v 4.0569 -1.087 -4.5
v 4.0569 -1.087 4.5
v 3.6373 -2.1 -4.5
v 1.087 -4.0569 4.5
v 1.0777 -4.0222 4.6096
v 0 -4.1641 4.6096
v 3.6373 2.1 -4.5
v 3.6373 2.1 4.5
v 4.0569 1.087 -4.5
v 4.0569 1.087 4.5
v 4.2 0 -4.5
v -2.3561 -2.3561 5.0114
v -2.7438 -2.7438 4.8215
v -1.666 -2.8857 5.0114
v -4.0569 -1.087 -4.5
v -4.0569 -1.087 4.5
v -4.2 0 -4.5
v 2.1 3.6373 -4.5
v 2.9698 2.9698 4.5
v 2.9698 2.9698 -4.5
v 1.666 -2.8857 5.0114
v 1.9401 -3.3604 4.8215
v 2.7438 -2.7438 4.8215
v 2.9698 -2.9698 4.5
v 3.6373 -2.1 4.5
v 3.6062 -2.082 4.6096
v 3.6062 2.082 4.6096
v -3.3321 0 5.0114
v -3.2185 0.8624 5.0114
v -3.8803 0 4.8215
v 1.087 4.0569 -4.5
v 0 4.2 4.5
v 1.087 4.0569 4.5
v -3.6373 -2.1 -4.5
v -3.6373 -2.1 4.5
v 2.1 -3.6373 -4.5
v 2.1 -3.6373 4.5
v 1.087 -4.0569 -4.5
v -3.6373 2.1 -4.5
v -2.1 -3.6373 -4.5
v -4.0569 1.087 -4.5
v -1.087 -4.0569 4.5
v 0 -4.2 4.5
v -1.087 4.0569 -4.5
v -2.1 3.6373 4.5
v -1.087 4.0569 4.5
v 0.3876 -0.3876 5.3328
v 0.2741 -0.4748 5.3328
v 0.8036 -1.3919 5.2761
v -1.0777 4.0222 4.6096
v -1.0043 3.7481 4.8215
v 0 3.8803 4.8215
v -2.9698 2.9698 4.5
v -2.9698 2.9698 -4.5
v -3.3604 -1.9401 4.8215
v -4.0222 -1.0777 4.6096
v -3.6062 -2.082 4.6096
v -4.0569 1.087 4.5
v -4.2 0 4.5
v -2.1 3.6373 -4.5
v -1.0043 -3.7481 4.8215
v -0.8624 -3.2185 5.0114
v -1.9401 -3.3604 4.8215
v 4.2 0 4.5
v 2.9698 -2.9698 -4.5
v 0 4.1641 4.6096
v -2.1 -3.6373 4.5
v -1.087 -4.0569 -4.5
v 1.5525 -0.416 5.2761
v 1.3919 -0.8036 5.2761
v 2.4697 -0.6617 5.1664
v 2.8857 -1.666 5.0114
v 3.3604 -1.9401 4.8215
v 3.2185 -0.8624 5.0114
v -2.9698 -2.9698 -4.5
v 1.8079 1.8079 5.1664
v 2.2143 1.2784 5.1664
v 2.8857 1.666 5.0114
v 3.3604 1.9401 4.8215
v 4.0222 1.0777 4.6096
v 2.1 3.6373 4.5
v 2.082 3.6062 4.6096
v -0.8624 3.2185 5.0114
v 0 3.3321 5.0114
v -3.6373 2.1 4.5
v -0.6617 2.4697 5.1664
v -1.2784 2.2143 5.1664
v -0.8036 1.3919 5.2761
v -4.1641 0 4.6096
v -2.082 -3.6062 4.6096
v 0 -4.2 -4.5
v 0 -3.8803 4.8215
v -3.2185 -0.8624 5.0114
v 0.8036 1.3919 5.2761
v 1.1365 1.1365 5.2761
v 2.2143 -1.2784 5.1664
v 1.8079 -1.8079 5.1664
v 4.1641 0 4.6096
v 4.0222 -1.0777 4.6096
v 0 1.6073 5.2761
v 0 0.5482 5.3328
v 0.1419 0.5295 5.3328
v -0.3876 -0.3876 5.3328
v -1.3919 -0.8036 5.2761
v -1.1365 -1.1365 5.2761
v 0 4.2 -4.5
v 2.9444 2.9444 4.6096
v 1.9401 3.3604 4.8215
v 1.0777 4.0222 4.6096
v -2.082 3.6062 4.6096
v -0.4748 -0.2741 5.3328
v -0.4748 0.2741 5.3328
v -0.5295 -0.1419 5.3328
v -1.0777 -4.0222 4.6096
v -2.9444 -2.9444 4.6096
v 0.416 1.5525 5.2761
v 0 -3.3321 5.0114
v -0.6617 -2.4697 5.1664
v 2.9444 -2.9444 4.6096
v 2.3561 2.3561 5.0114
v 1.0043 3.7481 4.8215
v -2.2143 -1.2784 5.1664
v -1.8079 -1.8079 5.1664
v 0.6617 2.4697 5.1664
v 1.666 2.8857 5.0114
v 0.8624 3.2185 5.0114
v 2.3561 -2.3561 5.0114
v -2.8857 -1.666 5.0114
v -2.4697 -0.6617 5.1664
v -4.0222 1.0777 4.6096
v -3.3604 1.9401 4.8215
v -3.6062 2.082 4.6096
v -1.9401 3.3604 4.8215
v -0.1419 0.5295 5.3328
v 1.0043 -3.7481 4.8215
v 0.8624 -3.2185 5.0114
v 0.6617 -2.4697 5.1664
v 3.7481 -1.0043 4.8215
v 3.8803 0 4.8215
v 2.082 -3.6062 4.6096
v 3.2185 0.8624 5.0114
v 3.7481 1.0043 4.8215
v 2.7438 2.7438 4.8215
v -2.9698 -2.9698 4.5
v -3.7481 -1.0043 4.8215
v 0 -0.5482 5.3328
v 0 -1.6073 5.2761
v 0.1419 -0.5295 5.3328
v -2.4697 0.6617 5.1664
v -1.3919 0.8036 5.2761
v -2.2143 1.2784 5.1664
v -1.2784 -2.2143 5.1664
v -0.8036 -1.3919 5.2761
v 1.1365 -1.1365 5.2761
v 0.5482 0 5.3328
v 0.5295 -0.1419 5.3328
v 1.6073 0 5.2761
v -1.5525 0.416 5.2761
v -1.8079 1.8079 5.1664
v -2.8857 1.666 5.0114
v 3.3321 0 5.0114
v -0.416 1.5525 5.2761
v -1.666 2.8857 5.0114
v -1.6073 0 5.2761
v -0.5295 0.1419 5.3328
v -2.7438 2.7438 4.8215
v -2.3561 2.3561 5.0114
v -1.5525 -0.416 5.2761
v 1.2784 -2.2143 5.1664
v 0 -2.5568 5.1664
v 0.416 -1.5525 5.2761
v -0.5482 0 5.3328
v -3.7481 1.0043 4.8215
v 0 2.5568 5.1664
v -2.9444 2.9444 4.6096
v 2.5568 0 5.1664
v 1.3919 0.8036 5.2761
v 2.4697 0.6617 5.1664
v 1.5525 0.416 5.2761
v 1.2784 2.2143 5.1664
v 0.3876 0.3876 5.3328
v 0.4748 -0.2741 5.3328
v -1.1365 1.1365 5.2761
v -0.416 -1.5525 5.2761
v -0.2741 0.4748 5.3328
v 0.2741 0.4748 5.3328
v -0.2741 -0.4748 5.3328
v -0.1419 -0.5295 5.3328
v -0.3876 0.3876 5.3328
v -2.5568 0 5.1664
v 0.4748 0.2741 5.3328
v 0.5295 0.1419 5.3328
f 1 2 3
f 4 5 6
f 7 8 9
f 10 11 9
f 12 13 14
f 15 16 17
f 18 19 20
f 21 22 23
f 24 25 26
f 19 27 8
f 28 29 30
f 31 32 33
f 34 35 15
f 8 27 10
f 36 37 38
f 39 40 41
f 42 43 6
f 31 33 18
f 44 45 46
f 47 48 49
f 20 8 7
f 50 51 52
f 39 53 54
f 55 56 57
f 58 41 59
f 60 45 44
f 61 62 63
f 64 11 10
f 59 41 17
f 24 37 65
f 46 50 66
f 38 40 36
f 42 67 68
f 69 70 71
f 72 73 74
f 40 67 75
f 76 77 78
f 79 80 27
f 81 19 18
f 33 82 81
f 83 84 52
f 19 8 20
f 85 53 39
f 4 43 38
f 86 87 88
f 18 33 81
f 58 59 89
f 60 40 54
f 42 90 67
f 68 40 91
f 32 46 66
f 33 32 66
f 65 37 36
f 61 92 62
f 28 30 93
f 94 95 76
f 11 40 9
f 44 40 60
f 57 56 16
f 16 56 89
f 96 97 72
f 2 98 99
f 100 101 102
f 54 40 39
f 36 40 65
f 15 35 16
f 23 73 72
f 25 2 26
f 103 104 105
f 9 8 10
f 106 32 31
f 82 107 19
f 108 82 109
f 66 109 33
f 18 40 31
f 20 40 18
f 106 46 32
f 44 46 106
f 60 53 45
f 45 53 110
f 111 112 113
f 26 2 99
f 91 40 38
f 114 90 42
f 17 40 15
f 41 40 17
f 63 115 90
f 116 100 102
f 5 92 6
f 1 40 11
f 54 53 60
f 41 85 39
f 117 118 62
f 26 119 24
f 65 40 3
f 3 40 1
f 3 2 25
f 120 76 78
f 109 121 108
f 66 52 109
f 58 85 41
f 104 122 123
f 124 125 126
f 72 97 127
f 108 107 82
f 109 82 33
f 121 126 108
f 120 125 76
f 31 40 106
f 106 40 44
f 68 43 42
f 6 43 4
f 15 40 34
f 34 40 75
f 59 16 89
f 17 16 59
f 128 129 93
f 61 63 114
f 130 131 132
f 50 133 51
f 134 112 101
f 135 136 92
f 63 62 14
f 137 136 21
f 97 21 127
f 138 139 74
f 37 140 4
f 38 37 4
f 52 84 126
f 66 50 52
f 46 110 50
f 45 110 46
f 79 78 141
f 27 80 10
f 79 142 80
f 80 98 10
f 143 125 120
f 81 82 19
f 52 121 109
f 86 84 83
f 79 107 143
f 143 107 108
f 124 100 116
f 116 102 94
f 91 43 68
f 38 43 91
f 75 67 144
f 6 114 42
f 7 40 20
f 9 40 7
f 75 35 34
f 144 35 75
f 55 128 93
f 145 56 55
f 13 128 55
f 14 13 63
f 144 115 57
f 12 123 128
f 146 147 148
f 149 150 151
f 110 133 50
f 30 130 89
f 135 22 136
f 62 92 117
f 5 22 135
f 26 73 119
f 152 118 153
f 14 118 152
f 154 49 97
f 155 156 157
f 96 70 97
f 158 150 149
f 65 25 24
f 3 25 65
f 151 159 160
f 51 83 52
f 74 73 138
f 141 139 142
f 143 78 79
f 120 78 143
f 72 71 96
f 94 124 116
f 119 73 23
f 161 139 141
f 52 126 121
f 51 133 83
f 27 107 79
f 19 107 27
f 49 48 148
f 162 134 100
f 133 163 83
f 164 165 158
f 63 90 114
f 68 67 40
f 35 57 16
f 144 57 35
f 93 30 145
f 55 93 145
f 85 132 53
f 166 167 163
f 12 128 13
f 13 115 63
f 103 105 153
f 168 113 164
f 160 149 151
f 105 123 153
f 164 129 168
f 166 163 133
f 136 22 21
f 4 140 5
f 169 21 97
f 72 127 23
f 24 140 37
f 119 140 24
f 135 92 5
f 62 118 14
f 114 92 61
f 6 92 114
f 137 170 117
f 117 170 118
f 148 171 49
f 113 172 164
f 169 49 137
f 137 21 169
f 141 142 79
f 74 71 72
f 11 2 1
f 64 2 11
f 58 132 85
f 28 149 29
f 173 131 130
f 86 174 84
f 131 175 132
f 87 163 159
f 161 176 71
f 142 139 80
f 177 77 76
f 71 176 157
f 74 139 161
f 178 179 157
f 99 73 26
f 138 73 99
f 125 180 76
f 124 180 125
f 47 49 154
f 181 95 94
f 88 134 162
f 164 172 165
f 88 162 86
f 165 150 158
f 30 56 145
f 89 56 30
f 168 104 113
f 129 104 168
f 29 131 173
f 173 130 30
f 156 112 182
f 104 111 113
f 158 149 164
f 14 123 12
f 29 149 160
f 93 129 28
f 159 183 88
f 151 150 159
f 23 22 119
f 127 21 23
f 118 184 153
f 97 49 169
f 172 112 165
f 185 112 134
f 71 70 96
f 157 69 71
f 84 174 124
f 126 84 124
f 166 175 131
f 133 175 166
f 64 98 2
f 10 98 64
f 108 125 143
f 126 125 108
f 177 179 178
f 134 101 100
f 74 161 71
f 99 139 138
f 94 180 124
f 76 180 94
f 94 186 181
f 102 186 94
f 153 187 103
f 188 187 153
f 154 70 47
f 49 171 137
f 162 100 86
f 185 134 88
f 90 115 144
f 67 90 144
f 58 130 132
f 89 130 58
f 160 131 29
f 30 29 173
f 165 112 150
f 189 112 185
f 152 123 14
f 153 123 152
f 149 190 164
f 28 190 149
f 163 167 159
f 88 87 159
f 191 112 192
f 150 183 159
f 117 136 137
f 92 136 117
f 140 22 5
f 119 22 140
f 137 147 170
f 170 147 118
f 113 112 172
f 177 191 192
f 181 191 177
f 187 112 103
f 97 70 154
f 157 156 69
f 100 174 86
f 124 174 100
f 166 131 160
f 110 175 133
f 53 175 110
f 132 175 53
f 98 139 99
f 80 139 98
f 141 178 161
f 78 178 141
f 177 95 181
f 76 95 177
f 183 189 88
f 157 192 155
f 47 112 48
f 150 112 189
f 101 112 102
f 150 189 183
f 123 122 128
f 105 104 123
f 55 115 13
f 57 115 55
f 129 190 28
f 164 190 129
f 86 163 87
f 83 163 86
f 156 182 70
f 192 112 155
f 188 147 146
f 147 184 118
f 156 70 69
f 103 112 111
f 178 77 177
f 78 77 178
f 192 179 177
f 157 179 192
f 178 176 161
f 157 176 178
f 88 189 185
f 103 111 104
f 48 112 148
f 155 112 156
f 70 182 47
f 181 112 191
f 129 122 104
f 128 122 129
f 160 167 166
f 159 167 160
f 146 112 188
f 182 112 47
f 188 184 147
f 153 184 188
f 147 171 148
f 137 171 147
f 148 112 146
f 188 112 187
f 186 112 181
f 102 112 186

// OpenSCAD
$face_button_radius = 8.4 / 2;
$button_depth = 9;


module button(){
  hull(){
  cylinder(h=$button_depth, r = $face_button_radius, center= true, $fn=24);
  translate([0,0,($button_depth / 2)])
    scale([1,1,0.2])
      sphere(r=$face_button_radius, $fn=24);
  }
}


button();
